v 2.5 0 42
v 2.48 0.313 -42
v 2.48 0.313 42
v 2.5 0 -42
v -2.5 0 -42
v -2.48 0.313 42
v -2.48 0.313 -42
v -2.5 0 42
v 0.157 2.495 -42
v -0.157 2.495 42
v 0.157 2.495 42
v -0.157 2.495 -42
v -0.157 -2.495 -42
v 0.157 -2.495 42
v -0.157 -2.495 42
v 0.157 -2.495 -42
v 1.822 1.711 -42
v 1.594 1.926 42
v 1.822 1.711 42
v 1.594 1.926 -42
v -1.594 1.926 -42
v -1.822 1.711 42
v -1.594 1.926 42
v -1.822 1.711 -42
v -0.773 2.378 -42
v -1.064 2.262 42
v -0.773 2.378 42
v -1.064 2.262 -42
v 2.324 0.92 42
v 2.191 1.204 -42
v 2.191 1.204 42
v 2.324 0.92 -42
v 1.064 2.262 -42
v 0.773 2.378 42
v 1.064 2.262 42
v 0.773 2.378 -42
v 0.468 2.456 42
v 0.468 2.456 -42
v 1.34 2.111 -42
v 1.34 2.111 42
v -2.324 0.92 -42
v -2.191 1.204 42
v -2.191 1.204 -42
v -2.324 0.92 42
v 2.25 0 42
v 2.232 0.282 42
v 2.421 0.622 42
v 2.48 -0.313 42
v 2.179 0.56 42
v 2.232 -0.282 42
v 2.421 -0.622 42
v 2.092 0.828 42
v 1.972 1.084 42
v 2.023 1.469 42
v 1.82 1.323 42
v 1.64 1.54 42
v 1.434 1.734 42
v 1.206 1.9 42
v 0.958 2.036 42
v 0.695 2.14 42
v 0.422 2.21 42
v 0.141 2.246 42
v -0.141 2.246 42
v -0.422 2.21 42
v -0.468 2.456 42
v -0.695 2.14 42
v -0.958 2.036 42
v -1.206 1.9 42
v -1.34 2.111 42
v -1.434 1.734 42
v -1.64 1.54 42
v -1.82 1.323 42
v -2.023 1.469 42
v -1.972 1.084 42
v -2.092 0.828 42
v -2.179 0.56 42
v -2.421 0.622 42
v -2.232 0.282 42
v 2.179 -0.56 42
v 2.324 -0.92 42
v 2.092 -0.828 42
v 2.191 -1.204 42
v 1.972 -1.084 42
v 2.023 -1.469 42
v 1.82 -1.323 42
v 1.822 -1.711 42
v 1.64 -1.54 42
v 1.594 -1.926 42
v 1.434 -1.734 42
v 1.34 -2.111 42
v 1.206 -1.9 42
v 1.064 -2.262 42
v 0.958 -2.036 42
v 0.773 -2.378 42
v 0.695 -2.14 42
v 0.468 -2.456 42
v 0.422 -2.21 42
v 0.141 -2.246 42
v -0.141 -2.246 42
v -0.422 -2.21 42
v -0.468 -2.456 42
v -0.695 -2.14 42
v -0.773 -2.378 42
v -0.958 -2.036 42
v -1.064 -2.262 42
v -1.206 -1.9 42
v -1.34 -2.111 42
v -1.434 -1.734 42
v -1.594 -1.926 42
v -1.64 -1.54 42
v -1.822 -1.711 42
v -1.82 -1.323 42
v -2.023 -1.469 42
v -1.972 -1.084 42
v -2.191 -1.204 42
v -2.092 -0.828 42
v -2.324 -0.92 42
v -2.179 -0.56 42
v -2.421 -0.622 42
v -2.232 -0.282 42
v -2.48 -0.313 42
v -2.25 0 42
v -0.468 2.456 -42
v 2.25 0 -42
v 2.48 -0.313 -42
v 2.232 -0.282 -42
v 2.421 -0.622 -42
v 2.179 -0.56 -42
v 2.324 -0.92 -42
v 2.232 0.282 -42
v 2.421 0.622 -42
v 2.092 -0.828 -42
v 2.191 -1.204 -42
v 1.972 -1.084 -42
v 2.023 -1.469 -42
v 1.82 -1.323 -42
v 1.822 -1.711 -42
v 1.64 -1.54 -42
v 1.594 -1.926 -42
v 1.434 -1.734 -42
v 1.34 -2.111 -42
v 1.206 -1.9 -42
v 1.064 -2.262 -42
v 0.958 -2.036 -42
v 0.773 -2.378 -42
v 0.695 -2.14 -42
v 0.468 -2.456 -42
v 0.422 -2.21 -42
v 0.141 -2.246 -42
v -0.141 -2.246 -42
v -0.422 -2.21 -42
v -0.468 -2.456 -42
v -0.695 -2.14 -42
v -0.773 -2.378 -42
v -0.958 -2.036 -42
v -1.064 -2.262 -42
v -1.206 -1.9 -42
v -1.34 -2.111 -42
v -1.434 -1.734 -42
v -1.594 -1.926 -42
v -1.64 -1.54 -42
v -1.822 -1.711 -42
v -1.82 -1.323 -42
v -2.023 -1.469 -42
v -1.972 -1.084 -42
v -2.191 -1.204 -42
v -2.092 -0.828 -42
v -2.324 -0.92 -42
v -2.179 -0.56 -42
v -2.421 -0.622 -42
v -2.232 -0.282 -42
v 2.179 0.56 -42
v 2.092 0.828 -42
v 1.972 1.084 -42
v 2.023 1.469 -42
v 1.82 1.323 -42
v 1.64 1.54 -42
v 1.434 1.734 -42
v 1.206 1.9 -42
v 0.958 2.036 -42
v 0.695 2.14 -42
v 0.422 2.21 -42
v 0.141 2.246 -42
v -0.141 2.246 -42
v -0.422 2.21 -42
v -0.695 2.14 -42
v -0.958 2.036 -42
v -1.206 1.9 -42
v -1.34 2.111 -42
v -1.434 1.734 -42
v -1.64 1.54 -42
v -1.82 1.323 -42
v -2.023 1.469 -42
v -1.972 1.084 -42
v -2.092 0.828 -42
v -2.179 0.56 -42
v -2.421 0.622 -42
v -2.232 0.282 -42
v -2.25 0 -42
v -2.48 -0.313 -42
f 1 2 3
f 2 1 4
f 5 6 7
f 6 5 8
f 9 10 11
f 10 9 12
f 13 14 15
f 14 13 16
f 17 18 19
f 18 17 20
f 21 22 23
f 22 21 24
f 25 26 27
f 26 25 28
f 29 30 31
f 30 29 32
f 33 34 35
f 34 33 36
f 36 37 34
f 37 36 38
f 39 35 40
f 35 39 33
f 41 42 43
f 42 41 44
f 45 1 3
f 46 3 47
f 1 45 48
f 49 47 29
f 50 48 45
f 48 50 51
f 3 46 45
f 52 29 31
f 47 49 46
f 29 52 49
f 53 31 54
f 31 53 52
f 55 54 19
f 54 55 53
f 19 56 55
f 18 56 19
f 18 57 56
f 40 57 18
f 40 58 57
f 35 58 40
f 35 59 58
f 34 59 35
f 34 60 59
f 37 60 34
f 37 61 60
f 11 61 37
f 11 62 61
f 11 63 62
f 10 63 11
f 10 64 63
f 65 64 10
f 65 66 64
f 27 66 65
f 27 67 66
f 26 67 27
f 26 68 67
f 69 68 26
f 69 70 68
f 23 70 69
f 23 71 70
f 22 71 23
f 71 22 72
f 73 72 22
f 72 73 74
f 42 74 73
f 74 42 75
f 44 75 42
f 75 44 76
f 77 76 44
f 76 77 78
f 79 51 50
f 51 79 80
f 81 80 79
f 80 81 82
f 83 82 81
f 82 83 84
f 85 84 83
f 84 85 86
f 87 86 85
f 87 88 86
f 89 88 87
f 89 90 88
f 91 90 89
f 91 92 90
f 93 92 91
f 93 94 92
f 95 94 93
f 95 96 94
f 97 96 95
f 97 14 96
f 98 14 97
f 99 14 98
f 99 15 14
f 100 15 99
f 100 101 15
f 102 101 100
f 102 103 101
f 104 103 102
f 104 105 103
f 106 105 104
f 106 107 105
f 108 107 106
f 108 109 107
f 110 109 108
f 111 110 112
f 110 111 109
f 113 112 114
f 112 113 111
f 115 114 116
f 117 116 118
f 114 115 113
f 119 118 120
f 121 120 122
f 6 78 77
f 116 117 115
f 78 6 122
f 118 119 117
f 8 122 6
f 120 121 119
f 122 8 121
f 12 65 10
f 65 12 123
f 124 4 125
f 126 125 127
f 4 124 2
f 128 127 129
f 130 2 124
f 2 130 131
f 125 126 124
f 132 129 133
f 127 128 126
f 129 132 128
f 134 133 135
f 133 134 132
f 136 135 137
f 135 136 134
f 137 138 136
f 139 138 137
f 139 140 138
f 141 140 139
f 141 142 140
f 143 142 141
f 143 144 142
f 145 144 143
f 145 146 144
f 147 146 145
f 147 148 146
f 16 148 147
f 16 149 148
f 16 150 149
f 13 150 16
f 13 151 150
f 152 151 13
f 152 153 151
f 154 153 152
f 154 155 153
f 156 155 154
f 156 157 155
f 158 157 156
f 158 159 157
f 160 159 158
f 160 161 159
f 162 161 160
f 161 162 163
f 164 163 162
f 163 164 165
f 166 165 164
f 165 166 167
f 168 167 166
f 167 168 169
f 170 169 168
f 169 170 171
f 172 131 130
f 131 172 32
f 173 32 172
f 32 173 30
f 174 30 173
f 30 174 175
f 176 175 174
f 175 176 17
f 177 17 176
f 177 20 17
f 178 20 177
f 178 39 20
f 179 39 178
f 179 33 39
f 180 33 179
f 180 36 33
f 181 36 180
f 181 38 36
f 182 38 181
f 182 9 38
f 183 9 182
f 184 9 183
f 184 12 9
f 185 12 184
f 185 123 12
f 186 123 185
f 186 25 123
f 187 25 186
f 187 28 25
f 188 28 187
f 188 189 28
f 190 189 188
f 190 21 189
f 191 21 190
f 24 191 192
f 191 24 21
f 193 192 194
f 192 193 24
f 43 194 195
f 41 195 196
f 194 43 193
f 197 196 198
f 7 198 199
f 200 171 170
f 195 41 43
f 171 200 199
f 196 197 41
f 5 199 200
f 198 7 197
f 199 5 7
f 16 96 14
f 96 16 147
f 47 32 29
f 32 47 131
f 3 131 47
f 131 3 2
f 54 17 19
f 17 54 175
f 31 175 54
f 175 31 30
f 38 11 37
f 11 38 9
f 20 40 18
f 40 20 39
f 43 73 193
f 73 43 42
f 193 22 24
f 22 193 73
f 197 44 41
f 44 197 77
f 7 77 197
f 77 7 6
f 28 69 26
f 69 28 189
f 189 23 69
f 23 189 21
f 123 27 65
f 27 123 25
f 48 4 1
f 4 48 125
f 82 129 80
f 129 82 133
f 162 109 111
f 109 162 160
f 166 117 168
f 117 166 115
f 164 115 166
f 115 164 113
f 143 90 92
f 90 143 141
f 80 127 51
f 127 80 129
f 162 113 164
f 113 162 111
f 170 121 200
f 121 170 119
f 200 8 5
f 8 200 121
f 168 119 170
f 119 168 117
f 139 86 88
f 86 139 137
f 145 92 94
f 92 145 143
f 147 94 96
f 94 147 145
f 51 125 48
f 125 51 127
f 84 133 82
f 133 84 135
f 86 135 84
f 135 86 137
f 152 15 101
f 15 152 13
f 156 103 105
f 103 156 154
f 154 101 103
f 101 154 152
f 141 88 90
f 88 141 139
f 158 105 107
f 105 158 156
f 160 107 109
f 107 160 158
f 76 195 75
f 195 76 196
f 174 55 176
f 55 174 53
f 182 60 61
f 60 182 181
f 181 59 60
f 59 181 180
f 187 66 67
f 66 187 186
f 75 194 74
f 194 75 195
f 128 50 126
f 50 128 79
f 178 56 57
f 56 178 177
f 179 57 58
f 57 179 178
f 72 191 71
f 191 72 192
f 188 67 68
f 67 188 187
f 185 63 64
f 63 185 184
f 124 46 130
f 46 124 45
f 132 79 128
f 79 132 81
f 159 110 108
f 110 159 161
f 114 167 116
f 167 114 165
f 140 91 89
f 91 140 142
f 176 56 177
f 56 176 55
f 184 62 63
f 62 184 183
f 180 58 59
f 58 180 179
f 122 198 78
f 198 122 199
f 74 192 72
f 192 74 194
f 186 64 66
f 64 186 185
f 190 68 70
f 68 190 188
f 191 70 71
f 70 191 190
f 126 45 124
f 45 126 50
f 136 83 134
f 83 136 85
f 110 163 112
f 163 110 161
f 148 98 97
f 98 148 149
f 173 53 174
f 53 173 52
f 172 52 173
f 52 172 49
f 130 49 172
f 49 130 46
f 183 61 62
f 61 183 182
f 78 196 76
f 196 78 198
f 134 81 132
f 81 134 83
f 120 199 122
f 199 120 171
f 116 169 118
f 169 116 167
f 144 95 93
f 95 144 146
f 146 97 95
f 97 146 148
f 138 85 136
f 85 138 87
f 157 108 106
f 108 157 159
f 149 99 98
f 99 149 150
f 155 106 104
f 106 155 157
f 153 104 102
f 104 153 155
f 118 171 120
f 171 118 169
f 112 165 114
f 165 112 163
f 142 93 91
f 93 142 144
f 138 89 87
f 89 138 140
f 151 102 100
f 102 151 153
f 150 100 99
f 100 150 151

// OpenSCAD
$fn = 50;


difference() {
	union() {
		translate(v = [0, 0, -42.0000000000]) {
			cylinder(h = 84, r = 2.5000000000);
		}
	}
	union() {
		translate(v = [0, 0, -100.0000000000]) {
			cylinder(h = 200, r = 2.2500000000);
		}
	}
}
